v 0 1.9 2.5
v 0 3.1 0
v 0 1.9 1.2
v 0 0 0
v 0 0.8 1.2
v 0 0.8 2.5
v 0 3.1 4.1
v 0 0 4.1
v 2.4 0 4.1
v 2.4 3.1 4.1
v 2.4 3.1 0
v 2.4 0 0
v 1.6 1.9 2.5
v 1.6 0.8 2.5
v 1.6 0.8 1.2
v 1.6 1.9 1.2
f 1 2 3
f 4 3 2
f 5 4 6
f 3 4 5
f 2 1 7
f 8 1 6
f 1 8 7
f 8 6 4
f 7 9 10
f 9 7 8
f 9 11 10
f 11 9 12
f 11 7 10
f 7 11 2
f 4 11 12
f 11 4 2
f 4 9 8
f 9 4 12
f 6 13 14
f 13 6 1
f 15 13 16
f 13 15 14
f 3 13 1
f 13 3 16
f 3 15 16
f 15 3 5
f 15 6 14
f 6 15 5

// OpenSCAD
difference(){
cube([2.4,3.1,1.6+1.2+1.3]);
translate([0,0.8,1.2])
cube([1.6,1.1,1.3]);
}
